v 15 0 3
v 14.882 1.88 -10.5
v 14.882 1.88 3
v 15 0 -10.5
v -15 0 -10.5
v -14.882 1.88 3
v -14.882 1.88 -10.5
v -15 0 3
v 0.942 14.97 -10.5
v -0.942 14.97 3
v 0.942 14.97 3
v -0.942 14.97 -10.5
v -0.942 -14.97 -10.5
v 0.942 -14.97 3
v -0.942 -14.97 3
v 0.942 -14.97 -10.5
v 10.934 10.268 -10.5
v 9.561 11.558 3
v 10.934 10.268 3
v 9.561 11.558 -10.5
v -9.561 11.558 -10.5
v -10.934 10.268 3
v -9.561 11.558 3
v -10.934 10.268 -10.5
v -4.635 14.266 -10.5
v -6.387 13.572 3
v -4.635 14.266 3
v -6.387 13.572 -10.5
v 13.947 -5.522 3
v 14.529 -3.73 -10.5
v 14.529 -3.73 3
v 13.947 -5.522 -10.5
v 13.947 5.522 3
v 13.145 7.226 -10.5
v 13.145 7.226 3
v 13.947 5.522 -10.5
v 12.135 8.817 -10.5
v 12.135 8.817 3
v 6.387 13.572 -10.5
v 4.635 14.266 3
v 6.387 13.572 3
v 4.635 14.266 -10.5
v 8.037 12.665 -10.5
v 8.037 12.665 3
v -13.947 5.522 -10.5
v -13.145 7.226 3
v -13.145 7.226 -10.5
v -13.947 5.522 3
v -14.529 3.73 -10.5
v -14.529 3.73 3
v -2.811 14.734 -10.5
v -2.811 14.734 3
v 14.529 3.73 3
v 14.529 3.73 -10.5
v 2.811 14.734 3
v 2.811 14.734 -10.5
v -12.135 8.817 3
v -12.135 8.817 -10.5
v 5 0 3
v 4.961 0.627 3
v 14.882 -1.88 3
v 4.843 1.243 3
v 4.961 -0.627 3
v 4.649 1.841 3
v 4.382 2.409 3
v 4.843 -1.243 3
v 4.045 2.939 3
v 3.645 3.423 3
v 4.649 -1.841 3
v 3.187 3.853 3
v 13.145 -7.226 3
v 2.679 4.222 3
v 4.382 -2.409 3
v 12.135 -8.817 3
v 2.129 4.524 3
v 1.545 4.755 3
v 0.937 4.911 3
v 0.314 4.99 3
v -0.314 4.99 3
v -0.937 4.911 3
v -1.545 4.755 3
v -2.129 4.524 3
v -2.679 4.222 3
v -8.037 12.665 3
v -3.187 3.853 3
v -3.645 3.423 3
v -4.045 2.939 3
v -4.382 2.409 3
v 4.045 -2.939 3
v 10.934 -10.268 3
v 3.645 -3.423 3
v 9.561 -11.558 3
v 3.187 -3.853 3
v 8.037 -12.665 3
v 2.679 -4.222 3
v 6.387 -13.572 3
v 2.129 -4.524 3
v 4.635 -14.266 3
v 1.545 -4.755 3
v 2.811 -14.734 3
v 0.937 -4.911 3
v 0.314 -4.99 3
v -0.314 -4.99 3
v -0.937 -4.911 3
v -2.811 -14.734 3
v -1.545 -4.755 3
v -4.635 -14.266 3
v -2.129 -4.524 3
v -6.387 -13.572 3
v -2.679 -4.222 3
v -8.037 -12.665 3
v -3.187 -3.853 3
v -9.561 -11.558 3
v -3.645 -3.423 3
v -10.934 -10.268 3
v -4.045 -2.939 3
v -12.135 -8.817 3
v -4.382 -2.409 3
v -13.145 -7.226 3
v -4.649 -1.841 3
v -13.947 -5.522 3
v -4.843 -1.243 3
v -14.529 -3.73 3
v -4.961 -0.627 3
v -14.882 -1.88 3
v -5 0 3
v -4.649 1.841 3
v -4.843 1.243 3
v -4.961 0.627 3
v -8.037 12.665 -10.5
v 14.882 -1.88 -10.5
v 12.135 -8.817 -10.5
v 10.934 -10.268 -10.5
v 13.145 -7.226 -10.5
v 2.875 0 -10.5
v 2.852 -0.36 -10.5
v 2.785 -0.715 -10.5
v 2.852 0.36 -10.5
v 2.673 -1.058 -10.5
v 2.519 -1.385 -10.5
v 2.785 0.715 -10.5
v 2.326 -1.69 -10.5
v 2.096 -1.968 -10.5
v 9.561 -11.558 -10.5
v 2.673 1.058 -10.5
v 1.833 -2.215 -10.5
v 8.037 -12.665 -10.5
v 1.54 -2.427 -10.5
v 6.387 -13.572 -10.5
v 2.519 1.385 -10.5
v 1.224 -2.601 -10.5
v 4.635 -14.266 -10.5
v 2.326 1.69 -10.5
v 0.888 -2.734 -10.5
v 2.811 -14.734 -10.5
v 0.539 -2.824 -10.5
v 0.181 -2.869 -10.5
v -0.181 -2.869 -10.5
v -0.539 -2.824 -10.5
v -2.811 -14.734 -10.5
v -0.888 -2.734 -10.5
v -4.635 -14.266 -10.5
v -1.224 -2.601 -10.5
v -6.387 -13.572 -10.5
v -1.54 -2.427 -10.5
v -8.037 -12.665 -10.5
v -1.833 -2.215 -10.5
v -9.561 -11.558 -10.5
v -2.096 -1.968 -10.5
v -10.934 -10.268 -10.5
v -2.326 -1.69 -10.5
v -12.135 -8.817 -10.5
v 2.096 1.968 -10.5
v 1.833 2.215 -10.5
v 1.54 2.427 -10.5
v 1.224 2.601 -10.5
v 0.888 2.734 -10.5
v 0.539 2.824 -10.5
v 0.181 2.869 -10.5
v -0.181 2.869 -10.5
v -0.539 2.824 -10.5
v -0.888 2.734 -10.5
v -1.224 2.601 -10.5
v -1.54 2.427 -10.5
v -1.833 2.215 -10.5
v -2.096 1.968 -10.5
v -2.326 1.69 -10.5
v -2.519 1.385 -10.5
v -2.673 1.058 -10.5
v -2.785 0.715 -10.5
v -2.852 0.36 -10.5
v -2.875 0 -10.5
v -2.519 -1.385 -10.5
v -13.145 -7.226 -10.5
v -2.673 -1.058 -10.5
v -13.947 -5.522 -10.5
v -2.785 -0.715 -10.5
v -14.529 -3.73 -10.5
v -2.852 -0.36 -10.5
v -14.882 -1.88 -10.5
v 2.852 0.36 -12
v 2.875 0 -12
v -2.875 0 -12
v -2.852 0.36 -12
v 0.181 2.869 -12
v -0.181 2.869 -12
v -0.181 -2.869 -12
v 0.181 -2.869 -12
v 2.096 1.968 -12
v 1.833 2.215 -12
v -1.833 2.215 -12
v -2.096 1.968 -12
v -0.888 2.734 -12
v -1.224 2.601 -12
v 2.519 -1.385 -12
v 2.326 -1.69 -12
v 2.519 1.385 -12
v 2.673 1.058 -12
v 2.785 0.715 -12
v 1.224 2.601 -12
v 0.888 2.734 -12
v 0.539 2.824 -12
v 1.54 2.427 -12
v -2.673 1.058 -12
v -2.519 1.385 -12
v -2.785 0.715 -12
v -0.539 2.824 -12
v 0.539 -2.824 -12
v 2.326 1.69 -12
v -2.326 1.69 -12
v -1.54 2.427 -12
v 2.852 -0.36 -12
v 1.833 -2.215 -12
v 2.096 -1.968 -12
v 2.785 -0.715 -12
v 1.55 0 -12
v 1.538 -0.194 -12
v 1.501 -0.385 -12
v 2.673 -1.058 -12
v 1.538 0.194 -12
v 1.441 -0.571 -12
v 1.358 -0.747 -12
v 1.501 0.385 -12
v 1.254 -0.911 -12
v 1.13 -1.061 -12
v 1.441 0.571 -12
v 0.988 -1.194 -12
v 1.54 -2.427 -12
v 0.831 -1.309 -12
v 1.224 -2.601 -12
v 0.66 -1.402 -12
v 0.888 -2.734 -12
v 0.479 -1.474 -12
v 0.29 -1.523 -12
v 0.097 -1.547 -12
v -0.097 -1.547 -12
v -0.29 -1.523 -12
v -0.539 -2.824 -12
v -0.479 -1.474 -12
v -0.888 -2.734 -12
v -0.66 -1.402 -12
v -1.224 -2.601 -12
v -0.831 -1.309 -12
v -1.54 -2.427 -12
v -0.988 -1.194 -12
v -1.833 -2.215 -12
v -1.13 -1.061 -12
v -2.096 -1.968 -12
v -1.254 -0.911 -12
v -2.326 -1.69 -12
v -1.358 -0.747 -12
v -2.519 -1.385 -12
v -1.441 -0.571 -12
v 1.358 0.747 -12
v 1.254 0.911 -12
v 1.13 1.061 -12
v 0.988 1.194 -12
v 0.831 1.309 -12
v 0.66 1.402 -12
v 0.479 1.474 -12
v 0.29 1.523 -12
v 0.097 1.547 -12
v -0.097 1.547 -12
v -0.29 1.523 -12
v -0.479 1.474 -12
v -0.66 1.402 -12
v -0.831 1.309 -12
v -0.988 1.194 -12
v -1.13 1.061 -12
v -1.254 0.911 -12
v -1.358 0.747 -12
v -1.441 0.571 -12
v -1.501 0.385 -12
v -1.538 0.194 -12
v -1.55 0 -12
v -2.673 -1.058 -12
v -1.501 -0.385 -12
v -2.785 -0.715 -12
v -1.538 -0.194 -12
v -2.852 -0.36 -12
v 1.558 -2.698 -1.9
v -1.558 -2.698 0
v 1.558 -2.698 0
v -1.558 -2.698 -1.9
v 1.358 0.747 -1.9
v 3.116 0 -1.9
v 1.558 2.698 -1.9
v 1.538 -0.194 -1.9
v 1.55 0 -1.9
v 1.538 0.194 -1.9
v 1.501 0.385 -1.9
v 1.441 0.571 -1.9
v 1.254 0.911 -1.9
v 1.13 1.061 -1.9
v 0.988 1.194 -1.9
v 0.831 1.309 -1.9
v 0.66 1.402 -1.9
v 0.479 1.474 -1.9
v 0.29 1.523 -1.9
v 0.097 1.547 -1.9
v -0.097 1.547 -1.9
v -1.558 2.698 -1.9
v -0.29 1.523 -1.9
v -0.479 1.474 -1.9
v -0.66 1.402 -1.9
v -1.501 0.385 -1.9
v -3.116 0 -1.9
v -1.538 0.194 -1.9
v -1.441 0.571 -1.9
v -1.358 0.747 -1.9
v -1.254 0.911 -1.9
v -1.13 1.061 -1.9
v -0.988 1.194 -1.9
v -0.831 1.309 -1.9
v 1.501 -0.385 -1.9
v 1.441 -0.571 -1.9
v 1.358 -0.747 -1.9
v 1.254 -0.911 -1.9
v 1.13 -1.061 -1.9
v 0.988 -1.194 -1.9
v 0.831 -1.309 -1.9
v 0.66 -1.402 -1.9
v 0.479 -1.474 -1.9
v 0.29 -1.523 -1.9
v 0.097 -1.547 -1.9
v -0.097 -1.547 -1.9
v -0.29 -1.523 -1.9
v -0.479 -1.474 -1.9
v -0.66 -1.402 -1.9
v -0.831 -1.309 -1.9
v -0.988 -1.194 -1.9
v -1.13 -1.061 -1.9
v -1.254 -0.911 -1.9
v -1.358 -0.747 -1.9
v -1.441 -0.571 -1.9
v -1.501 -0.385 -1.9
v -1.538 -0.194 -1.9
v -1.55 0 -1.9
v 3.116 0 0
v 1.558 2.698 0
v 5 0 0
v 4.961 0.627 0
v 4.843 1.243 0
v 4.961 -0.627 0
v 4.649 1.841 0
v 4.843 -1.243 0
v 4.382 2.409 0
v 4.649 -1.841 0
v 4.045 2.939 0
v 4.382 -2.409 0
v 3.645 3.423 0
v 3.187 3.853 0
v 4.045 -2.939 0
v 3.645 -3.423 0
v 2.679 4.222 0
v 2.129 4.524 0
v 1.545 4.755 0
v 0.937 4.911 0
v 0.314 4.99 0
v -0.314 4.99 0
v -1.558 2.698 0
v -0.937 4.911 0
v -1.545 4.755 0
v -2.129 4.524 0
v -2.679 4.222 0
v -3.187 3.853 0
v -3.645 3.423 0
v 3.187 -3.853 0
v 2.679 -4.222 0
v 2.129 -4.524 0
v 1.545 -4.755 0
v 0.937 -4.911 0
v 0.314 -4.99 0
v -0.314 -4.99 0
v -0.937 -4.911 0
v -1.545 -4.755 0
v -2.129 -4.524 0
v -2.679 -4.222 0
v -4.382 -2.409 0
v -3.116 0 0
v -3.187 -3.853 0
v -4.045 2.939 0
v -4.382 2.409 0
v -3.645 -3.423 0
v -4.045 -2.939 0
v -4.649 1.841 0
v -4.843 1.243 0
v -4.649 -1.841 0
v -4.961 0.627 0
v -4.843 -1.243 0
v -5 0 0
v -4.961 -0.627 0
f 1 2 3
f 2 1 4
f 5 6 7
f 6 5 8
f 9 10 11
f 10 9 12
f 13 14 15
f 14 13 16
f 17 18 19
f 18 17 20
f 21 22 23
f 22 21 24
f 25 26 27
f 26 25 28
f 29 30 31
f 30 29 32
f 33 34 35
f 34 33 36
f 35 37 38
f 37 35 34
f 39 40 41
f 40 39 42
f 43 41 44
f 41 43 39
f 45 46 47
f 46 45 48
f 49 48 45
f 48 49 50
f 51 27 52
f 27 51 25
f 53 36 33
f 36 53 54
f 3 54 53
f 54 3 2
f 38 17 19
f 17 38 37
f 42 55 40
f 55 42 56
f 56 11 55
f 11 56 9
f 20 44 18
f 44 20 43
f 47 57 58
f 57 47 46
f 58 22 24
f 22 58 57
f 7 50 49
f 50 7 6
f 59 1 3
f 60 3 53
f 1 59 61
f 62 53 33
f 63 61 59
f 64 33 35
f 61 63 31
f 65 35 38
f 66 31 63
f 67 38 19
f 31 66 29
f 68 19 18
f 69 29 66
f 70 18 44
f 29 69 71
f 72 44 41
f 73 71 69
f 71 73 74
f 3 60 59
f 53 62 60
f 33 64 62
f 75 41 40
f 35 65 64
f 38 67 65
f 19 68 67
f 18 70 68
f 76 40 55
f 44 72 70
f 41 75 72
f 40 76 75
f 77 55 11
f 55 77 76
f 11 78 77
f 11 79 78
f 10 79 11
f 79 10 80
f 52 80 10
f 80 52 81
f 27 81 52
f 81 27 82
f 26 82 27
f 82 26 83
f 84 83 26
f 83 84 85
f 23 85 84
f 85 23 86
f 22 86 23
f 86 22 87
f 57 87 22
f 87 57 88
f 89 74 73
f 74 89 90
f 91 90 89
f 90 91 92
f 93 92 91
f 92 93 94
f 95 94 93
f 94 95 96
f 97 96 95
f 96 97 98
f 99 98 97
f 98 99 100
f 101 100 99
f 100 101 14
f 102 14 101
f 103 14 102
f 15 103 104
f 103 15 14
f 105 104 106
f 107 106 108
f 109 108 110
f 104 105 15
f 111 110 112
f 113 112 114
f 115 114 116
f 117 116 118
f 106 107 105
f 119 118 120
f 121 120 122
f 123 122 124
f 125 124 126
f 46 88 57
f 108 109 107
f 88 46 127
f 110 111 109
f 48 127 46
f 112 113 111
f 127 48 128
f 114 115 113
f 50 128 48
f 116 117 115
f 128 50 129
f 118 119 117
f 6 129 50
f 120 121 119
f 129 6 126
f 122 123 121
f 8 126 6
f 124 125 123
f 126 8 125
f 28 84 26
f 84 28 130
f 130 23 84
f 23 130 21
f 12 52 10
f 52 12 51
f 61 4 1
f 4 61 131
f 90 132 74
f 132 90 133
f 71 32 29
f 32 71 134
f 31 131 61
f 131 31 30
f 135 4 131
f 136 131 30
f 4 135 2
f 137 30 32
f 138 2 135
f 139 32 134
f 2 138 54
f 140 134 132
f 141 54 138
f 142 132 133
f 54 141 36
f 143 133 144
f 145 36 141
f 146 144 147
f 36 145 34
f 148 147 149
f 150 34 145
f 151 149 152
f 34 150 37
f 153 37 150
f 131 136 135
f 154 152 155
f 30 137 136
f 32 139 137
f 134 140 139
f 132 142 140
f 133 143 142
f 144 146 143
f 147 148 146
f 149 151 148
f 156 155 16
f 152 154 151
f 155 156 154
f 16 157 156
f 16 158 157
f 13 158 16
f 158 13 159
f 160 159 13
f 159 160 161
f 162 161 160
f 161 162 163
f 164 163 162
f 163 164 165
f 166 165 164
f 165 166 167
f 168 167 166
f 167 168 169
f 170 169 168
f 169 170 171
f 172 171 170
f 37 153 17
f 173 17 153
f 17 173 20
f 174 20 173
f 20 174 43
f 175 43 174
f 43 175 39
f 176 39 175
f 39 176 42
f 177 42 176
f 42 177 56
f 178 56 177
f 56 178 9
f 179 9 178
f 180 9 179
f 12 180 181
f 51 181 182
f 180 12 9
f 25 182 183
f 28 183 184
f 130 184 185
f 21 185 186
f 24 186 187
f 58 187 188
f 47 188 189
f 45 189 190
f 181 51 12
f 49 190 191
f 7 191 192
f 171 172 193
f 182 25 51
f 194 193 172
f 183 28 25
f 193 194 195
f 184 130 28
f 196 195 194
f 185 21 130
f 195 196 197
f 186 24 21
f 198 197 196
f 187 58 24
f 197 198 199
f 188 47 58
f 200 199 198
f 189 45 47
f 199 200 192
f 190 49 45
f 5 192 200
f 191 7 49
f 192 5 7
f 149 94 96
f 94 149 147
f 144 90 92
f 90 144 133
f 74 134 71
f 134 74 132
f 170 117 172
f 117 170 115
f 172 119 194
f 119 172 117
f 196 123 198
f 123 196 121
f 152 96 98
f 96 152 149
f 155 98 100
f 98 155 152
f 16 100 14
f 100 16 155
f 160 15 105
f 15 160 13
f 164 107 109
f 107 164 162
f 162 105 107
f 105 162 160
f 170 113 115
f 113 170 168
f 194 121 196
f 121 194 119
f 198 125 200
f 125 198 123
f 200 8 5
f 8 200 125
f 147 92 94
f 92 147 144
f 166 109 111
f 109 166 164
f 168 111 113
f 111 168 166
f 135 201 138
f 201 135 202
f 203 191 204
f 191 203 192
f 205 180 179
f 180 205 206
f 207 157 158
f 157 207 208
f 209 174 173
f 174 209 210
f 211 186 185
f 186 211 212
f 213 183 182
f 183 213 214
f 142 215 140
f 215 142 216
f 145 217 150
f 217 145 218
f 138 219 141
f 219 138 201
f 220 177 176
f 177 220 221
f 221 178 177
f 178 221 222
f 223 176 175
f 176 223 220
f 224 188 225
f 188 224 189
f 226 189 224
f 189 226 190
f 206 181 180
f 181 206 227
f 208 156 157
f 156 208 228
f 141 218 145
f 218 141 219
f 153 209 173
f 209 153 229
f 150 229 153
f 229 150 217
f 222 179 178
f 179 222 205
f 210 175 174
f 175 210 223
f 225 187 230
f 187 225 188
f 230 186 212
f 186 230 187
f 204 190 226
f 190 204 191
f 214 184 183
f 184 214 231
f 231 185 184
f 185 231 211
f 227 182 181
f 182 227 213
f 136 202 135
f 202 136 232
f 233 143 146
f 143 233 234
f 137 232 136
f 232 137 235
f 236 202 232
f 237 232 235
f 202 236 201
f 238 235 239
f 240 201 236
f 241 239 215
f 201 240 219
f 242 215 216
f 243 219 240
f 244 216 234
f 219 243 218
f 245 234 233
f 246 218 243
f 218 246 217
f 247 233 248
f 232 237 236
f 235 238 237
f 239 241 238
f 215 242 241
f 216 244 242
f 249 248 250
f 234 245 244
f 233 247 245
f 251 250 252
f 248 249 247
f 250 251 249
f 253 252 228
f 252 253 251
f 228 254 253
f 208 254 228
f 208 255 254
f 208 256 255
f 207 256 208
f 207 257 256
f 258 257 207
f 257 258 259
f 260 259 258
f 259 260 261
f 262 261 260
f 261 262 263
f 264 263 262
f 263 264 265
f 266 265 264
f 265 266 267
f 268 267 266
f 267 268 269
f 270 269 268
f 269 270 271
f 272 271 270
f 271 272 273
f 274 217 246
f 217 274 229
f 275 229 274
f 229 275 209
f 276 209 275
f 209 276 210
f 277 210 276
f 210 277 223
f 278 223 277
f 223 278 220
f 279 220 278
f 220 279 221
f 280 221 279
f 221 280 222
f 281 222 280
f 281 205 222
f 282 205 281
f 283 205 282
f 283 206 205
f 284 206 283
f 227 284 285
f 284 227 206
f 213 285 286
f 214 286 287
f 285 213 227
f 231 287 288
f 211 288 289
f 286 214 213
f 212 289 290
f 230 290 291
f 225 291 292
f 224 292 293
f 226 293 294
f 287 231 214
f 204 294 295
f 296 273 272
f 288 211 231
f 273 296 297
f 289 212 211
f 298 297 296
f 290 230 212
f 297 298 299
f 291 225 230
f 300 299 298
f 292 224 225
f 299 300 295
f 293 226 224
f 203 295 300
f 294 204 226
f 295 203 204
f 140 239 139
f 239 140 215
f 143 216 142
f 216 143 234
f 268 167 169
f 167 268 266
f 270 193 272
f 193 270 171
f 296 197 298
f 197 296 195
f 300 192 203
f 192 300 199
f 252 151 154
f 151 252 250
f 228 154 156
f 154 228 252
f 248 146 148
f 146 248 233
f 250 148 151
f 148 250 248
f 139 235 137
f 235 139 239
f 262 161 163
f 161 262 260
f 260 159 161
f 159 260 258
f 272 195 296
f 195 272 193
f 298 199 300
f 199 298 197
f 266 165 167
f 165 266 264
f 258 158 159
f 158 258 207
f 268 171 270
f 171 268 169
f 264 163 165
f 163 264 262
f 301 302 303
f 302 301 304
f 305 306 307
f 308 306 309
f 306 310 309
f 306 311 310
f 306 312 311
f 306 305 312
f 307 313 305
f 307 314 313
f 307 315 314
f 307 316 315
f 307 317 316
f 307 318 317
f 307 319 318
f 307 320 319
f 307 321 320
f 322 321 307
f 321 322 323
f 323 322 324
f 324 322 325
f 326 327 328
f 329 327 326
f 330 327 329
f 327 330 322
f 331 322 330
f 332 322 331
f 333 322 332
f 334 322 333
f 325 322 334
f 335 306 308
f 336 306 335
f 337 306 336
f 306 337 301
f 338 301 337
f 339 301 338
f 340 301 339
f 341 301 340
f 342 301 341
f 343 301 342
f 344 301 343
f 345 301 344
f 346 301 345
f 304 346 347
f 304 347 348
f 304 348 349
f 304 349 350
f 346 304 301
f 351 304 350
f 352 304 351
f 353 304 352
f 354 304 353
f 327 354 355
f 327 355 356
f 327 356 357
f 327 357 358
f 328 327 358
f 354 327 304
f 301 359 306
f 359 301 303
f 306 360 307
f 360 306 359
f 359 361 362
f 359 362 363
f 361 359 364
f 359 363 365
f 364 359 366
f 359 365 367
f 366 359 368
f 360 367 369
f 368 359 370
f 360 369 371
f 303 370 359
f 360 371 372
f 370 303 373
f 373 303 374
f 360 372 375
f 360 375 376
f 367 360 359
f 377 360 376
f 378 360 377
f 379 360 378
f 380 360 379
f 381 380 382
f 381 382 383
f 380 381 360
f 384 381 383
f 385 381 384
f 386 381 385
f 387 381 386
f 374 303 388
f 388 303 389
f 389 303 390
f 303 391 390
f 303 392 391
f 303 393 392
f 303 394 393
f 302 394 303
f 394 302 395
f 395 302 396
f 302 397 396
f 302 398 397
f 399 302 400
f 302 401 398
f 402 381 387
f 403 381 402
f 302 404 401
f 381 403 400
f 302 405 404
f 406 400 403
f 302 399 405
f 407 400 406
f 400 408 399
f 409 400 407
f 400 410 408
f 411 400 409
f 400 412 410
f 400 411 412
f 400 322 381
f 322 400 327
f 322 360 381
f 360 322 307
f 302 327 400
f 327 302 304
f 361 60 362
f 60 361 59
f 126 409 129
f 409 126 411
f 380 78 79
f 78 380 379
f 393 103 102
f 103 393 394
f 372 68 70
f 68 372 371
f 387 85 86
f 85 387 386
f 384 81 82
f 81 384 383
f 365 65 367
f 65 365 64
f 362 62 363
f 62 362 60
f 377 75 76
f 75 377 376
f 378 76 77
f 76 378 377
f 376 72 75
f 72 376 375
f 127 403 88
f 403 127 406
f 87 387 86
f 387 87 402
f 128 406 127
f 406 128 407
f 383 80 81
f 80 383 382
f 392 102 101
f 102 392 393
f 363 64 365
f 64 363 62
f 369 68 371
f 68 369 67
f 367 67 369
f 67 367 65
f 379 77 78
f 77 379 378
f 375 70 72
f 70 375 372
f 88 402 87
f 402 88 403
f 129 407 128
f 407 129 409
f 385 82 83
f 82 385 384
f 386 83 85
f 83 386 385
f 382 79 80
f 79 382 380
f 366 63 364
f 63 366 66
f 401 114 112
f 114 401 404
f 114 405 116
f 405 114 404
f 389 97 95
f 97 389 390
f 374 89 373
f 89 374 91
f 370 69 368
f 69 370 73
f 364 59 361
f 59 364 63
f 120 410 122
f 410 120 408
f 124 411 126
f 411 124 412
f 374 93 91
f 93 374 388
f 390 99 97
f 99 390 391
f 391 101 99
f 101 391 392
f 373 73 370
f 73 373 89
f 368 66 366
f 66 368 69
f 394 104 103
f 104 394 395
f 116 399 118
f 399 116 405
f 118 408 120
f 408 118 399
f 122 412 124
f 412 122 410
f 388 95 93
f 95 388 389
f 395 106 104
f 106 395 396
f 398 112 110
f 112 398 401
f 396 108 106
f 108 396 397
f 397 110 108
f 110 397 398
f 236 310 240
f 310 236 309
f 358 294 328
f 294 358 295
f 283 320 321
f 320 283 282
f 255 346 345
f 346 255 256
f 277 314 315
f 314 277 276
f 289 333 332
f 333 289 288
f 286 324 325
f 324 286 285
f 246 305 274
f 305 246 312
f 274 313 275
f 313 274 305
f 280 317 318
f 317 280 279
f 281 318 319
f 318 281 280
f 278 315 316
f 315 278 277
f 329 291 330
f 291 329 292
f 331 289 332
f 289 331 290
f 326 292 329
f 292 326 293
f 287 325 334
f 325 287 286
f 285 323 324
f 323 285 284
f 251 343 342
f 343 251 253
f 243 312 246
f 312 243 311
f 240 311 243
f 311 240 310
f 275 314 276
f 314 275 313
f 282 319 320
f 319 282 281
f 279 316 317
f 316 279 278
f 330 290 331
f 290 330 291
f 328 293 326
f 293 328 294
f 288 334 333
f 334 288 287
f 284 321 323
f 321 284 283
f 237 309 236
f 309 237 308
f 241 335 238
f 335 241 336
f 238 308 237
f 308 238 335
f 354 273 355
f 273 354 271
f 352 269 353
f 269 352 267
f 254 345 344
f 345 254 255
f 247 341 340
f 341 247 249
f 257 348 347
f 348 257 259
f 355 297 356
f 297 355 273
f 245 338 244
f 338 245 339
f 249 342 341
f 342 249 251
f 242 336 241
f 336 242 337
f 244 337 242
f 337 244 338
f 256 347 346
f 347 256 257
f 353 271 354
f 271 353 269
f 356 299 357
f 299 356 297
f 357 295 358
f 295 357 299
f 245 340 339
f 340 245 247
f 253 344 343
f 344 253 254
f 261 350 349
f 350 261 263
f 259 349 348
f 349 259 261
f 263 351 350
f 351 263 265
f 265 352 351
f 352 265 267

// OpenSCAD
$fn = 50;


difference() {
	union() {
		translate(v = [0, 0, -10.5000000000]) {
			cylinder(h = 13.5000000000, r = 15.0000000000);
		}
		#translate(v = [0, 0, -12.0000000000]) {
			cylinder(h = 12, r = 2.8750000000);
		}
	}
	union() {
		translate(v = [0, 0, 0]) {
			rotate(a = [0, 0, 0]) {
				difference() {
					union() {
						translate(v = [0, 0, -1.9000000000]) {
							linear_extrude(height = 1.9000000000) {
								polygon(points = [[3.1158000000, 0.0000000000], [1.5579000000, 2.6983619531], [-1.5579000000, 2.6983619531], [-3.1158000000, 0.0000000000], [-1.5579000000, -2.6983619531], [1.5579000000, -2.6983619531]]);
							}
						}
					}
					union();
				}
			}
		}
		#cylinder(h = 3, r = 5.0000000000);
		#translate(v = [0, 0, -100.0000000000]) {
			cylinder(h = 200, r = 1.5500000000);
		}
	}
}
